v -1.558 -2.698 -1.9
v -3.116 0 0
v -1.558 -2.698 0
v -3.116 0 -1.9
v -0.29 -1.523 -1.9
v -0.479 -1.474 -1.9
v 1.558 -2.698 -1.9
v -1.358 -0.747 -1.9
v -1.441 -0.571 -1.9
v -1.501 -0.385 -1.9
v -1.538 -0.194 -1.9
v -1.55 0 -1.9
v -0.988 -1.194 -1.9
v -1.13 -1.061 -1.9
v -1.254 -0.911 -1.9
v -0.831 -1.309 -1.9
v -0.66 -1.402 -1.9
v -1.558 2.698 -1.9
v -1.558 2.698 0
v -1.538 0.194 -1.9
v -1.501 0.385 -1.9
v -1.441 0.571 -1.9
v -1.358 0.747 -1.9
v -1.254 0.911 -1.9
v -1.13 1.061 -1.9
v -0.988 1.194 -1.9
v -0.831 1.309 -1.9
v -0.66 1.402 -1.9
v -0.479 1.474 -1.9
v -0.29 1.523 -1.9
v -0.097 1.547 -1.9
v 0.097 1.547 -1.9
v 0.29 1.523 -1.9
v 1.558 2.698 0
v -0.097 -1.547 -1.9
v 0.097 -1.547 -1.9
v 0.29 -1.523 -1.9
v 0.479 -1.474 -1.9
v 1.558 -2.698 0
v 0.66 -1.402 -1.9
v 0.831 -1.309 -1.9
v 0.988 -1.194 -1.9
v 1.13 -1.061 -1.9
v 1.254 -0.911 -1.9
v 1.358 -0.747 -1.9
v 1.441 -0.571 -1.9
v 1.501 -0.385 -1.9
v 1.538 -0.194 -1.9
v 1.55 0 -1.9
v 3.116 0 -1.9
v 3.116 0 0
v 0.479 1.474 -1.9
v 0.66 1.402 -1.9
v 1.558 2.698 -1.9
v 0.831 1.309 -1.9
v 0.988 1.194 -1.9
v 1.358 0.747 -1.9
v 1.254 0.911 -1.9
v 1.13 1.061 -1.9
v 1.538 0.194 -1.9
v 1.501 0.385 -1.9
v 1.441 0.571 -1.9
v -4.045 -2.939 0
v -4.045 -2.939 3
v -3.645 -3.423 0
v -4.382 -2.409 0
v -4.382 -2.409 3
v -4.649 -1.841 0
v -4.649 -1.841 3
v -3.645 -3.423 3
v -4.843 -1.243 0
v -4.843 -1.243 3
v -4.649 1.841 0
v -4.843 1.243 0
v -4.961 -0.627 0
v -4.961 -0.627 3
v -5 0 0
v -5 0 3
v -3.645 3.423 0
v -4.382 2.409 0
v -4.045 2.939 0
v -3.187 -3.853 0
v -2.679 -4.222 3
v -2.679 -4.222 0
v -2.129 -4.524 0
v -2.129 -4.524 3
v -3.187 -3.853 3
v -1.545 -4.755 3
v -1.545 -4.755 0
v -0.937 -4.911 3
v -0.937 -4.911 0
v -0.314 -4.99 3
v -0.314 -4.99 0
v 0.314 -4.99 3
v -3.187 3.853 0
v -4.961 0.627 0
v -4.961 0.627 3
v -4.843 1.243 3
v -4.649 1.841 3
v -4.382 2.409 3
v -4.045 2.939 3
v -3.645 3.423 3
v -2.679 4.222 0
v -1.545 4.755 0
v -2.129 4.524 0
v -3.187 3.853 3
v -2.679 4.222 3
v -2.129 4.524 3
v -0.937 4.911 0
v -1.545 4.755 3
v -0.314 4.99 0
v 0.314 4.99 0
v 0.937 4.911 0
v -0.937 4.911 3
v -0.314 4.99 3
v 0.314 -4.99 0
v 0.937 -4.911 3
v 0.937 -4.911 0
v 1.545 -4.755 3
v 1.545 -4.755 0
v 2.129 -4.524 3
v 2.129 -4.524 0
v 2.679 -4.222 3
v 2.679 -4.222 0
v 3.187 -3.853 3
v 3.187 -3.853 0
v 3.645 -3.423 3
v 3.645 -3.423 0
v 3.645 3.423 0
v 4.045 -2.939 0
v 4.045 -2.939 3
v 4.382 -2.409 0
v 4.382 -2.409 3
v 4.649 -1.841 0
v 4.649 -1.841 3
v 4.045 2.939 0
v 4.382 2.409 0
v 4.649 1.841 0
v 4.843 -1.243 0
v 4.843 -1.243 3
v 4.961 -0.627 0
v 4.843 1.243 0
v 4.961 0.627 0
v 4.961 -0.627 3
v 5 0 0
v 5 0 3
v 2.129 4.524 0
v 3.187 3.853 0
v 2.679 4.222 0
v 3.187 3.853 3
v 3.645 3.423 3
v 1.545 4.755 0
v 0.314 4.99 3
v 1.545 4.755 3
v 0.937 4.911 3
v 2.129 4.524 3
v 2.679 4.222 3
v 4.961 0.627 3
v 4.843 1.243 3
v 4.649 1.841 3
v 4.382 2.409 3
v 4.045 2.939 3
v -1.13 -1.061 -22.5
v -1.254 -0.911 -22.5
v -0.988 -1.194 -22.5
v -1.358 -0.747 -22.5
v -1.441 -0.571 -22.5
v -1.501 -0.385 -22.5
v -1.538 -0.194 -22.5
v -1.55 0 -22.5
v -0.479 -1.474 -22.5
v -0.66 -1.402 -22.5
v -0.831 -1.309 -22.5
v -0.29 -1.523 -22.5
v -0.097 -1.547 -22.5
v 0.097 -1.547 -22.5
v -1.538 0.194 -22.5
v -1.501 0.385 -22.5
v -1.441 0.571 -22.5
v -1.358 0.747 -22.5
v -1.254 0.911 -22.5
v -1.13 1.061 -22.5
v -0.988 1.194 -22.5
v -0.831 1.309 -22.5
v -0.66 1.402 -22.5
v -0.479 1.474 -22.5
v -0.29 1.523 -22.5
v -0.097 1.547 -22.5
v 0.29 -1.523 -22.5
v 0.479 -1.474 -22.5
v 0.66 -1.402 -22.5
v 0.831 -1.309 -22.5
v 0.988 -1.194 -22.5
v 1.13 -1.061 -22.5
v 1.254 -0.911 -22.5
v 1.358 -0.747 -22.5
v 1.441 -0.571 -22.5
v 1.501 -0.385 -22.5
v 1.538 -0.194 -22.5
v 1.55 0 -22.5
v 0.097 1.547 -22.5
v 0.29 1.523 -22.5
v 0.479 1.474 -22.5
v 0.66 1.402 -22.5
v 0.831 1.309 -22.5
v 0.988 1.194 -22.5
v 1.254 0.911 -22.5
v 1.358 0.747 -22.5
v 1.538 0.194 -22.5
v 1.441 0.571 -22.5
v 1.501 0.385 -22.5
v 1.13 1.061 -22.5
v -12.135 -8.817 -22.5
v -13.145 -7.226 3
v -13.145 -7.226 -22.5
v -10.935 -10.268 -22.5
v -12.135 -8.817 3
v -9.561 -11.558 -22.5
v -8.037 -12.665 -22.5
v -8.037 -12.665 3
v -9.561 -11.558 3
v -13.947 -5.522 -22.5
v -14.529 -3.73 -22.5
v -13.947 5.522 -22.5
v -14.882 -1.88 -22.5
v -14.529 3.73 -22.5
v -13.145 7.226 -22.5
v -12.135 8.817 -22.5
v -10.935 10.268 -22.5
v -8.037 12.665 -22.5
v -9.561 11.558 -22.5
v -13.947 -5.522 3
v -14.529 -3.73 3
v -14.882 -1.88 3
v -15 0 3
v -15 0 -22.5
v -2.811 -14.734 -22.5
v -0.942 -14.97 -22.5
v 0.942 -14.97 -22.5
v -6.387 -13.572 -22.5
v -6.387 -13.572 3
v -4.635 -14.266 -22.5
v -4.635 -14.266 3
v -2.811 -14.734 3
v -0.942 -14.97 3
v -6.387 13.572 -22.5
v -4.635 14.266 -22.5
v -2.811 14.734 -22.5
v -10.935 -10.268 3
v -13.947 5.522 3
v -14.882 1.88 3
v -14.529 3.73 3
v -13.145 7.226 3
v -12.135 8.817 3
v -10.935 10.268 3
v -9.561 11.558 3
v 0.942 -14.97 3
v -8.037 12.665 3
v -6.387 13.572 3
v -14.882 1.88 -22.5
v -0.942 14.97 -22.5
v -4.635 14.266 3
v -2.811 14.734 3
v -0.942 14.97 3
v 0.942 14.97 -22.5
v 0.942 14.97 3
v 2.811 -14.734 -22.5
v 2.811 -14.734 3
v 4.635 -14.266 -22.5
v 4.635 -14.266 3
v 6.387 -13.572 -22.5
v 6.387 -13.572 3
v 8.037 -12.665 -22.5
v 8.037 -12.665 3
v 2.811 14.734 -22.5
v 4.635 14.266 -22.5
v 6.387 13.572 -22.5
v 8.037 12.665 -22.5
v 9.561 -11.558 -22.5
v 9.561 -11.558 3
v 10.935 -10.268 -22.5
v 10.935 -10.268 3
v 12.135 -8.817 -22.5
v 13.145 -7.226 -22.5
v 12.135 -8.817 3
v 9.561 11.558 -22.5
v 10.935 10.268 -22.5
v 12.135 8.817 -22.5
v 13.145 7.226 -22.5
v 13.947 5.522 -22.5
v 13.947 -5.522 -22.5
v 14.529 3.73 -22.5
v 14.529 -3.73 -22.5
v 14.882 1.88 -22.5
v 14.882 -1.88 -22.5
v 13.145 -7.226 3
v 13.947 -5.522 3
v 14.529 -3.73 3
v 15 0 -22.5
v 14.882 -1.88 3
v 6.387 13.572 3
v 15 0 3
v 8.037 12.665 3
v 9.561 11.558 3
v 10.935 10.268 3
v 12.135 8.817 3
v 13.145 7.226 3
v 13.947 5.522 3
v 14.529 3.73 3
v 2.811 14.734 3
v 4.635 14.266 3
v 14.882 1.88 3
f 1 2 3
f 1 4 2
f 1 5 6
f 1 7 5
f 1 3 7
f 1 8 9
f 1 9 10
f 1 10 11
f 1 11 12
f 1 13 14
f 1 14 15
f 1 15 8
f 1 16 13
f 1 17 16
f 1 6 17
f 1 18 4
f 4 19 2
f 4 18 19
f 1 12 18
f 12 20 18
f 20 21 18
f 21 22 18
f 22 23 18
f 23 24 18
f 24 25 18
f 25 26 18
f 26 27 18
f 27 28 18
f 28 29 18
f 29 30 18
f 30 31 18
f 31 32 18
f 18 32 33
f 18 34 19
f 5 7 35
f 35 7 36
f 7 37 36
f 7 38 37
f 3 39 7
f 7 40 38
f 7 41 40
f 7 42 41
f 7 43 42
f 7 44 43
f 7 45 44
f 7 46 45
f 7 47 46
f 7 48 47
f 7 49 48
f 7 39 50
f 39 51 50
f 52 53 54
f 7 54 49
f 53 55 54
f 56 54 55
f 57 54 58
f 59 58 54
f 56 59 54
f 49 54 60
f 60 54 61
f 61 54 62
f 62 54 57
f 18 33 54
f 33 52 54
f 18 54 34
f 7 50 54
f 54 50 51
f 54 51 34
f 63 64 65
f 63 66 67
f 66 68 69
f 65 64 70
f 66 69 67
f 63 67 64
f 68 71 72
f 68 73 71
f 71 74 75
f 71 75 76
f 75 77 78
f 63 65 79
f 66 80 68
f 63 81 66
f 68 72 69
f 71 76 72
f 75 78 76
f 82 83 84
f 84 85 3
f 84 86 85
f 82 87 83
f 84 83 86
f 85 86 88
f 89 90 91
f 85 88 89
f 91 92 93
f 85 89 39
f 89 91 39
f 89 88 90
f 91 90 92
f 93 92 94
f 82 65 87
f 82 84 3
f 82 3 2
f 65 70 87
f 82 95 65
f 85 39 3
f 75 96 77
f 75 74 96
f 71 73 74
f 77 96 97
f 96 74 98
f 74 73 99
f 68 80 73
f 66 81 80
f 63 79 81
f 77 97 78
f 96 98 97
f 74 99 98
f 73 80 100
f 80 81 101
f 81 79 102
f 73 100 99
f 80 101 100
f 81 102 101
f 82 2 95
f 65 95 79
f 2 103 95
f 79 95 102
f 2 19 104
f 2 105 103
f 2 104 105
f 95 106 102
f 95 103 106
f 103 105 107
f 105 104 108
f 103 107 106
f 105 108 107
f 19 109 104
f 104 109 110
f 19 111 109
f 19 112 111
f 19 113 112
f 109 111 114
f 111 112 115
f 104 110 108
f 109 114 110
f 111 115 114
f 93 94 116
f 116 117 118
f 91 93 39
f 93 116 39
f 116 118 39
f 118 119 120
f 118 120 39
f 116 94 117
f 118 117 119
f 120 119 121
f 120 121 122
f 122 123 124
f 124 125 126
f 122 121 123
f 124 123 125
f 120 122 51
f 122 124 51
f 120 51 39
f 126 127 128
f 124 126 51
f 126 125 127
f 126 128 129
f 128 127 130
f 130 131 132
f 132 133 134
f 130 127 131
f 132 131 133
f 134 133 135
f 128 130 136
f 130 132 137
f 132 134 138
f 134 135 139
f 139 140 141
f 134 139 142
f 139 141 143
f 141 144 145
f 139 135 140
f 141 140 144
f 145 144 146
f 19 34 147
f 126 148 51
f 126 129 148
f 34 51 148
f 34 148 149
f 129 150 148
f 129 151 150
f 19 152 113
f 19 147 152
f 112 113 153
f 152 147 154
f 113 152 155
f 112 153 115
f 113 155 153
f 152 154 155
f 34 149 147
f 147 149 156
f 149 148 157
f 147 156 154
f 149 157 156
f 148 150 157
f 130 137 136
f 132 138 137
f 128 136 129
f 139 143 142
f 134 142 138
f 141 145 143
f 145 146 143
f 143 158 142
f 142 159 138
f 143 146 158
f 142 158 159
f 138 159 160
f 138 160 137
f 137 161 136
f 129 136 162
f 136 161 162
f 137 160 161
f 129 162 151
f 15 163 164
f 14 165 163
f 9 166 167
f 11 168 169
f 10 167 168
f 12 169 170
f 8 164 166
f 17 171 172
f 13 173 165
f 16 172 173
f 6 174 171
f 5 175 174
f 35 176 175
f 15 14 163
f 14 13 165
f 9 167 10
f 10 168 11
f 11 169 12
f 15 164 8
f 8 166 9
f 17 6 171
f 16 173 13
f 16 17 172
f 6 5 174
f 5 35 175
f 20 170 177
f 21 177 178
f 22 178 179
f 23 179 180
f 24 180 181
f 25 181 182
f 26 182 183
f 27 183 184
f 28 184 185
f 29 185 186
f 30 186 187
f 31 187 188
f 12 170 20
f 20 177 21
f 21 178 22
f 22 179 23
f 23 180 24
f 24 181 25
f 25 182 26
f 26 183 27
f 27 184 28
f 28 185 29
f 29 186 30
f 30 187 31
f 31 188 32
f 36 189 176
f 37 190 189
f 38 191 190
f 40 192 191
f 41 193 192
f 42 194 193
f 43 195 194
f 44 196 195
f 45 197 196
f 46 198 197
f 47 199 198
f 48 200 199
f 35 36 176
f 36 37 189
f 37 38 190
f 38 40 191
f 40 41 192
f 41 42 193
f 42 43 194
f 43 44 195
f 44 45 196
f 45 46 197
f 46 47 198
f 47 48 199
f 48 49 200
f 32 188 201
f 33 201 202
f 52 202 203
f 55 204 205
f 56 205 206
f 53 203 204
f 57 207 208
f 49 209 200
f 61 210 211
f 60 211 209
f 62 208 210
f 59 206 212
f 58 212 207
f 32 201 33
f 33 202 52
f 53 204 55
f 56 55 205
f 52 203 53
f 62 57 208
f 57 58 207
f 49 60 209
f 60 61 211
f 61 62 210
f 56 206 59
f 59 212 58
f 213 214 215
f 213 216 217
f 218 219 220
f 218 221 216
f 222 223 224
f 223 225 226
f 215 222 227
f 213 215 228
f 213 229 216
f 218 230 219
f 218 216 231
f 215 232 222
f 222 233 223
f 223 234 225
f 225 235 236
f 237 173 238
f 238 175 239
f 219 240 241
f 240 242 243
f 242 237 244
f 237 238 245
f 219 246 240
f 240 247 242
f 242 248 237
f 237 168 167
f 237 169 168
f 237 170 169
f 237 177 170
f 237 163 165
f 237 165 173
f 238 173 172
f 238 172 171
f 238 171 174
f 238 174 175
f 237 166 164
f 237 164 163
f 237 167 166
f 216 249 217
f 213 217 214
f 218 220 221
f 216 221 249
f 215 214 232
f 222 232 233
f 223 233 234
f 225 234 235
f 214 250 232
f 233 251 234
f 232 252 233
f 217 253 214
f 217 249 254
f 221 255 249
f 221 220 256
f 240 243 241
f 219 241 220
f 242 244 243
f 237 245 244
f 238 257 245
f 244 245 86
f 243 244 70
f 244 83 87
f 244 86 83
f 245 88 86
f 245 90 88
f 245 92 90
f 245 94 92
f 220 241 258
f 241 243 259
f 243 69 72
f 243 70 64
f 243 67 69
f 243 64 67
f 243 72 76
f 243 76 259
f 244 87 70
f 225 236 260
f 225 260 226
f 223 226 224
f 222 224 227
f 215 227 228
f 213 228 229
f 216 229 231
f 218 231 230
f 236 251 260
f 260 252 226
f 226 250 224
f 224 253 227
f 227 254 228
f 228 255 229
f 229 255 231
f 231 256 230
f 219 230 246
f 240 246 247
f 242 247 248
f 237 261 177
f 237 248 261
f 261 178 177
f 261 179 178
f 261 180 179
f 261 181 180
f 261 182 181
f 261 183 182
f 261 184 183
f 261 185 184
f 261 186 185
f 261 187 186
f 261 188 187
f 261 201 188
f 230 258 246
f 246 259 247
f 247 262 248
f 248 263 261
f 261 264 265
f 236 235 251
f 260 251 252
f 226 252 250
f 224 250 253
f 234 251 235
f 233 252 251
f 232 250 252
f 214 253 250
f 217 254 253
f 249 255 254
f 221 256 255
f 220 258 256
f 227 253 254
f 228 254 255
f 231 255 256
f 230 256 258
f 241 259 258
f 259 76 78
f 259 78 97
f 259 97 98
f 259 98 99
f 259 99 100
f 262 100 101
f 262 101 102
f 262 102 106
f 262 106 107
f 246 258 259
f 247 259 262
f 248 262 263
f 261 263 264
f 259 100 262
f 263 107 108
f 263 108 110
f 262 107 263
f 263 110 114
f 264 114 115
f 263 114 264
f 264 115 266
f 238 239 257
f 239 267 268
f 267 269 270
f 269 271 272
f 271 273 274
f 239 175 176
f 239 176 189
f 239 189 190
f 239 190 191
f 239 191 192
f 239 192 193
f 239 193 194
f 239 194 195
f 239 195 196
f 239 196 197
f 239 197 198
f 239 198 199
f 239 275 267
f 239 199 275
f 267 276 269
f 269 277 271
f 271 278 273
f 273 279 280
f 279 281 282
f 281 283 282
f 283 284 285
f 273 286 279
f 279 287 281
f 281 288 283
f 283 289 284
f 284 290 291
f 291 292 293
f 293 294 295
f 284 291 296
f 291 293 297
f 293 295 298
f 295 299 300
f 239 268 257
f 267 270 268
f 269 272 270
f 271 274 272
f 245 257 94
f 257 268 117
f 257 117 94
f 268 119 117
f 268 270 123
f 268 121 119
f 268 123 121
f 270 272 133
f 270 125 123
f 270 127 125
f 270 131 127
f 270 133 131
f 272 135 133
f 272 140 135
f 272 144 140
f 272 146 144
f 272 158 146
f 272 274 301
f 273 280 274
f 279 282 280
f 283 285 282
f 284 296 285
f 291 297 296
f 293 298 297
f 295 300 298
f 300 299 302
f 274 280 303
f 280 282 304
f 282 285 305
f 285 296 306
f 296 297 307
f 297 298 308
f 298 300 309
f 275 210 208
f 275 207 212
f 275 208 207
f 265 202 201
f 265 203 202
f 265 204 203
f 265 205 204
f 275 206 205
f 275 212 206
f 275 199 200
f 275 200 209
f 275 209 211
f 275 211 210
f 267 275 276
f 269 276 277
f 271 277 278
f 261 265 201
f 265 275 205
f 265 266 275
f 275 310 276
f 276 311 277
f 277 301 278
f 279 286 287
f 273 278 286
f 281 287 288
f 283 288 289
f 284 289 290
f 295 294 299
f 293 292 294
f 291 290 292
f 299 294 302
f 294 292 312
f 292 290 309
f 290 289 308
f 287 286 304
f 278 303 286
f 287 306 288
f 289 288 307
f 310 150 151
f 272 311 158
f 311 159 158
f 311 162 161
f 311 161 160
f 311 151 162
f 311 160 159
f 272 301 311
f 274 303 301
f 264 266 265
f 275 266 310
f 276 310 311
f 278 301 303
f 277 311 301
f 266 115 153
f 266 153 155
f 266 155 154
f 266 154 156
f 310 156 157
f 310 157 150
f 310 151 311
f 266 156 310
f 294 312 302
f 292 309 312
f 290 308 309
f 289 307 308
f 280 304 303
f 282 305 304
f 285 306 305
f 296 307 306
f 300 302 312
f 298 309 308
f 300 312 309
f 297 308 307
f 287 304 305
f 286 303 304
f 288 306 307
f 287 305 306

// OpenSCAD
$fn = 50;


difference() {
	union() {
		translate(v = [0, 0, -22.5000000000]) {
			cylinder(h = 25.5000000000, r = 15.0000000000);
		}
	}
	union() {
		translate(v = [0, 0, 0]) {
			rotate(a = [0, 0, 0]) {
				difference() {
					union() {
						translate(v = [0, 0, -1.9000000000]) {
							linear_extrude(height = 1.9000000000) {
								polygon(points = [[3.1158000000, 0.0000000000], [1.5579000000, 2.6983619531], [-1.5579000000, 2.6983619531], [-3.1158000000, 0.0000000000], [-1.5579000000, -2.6983619531], [1.5579000000, -2.6983619531]]);
							}
						}
					}
					union();
				}
			}
		}
		#cylinder(h = 3, r = 5.0000000000);
		#translate(v = [0, 0, -100.0000000000]) {
			cylinder(h = 200, r = 1.5500000000);
		}
	}
}
